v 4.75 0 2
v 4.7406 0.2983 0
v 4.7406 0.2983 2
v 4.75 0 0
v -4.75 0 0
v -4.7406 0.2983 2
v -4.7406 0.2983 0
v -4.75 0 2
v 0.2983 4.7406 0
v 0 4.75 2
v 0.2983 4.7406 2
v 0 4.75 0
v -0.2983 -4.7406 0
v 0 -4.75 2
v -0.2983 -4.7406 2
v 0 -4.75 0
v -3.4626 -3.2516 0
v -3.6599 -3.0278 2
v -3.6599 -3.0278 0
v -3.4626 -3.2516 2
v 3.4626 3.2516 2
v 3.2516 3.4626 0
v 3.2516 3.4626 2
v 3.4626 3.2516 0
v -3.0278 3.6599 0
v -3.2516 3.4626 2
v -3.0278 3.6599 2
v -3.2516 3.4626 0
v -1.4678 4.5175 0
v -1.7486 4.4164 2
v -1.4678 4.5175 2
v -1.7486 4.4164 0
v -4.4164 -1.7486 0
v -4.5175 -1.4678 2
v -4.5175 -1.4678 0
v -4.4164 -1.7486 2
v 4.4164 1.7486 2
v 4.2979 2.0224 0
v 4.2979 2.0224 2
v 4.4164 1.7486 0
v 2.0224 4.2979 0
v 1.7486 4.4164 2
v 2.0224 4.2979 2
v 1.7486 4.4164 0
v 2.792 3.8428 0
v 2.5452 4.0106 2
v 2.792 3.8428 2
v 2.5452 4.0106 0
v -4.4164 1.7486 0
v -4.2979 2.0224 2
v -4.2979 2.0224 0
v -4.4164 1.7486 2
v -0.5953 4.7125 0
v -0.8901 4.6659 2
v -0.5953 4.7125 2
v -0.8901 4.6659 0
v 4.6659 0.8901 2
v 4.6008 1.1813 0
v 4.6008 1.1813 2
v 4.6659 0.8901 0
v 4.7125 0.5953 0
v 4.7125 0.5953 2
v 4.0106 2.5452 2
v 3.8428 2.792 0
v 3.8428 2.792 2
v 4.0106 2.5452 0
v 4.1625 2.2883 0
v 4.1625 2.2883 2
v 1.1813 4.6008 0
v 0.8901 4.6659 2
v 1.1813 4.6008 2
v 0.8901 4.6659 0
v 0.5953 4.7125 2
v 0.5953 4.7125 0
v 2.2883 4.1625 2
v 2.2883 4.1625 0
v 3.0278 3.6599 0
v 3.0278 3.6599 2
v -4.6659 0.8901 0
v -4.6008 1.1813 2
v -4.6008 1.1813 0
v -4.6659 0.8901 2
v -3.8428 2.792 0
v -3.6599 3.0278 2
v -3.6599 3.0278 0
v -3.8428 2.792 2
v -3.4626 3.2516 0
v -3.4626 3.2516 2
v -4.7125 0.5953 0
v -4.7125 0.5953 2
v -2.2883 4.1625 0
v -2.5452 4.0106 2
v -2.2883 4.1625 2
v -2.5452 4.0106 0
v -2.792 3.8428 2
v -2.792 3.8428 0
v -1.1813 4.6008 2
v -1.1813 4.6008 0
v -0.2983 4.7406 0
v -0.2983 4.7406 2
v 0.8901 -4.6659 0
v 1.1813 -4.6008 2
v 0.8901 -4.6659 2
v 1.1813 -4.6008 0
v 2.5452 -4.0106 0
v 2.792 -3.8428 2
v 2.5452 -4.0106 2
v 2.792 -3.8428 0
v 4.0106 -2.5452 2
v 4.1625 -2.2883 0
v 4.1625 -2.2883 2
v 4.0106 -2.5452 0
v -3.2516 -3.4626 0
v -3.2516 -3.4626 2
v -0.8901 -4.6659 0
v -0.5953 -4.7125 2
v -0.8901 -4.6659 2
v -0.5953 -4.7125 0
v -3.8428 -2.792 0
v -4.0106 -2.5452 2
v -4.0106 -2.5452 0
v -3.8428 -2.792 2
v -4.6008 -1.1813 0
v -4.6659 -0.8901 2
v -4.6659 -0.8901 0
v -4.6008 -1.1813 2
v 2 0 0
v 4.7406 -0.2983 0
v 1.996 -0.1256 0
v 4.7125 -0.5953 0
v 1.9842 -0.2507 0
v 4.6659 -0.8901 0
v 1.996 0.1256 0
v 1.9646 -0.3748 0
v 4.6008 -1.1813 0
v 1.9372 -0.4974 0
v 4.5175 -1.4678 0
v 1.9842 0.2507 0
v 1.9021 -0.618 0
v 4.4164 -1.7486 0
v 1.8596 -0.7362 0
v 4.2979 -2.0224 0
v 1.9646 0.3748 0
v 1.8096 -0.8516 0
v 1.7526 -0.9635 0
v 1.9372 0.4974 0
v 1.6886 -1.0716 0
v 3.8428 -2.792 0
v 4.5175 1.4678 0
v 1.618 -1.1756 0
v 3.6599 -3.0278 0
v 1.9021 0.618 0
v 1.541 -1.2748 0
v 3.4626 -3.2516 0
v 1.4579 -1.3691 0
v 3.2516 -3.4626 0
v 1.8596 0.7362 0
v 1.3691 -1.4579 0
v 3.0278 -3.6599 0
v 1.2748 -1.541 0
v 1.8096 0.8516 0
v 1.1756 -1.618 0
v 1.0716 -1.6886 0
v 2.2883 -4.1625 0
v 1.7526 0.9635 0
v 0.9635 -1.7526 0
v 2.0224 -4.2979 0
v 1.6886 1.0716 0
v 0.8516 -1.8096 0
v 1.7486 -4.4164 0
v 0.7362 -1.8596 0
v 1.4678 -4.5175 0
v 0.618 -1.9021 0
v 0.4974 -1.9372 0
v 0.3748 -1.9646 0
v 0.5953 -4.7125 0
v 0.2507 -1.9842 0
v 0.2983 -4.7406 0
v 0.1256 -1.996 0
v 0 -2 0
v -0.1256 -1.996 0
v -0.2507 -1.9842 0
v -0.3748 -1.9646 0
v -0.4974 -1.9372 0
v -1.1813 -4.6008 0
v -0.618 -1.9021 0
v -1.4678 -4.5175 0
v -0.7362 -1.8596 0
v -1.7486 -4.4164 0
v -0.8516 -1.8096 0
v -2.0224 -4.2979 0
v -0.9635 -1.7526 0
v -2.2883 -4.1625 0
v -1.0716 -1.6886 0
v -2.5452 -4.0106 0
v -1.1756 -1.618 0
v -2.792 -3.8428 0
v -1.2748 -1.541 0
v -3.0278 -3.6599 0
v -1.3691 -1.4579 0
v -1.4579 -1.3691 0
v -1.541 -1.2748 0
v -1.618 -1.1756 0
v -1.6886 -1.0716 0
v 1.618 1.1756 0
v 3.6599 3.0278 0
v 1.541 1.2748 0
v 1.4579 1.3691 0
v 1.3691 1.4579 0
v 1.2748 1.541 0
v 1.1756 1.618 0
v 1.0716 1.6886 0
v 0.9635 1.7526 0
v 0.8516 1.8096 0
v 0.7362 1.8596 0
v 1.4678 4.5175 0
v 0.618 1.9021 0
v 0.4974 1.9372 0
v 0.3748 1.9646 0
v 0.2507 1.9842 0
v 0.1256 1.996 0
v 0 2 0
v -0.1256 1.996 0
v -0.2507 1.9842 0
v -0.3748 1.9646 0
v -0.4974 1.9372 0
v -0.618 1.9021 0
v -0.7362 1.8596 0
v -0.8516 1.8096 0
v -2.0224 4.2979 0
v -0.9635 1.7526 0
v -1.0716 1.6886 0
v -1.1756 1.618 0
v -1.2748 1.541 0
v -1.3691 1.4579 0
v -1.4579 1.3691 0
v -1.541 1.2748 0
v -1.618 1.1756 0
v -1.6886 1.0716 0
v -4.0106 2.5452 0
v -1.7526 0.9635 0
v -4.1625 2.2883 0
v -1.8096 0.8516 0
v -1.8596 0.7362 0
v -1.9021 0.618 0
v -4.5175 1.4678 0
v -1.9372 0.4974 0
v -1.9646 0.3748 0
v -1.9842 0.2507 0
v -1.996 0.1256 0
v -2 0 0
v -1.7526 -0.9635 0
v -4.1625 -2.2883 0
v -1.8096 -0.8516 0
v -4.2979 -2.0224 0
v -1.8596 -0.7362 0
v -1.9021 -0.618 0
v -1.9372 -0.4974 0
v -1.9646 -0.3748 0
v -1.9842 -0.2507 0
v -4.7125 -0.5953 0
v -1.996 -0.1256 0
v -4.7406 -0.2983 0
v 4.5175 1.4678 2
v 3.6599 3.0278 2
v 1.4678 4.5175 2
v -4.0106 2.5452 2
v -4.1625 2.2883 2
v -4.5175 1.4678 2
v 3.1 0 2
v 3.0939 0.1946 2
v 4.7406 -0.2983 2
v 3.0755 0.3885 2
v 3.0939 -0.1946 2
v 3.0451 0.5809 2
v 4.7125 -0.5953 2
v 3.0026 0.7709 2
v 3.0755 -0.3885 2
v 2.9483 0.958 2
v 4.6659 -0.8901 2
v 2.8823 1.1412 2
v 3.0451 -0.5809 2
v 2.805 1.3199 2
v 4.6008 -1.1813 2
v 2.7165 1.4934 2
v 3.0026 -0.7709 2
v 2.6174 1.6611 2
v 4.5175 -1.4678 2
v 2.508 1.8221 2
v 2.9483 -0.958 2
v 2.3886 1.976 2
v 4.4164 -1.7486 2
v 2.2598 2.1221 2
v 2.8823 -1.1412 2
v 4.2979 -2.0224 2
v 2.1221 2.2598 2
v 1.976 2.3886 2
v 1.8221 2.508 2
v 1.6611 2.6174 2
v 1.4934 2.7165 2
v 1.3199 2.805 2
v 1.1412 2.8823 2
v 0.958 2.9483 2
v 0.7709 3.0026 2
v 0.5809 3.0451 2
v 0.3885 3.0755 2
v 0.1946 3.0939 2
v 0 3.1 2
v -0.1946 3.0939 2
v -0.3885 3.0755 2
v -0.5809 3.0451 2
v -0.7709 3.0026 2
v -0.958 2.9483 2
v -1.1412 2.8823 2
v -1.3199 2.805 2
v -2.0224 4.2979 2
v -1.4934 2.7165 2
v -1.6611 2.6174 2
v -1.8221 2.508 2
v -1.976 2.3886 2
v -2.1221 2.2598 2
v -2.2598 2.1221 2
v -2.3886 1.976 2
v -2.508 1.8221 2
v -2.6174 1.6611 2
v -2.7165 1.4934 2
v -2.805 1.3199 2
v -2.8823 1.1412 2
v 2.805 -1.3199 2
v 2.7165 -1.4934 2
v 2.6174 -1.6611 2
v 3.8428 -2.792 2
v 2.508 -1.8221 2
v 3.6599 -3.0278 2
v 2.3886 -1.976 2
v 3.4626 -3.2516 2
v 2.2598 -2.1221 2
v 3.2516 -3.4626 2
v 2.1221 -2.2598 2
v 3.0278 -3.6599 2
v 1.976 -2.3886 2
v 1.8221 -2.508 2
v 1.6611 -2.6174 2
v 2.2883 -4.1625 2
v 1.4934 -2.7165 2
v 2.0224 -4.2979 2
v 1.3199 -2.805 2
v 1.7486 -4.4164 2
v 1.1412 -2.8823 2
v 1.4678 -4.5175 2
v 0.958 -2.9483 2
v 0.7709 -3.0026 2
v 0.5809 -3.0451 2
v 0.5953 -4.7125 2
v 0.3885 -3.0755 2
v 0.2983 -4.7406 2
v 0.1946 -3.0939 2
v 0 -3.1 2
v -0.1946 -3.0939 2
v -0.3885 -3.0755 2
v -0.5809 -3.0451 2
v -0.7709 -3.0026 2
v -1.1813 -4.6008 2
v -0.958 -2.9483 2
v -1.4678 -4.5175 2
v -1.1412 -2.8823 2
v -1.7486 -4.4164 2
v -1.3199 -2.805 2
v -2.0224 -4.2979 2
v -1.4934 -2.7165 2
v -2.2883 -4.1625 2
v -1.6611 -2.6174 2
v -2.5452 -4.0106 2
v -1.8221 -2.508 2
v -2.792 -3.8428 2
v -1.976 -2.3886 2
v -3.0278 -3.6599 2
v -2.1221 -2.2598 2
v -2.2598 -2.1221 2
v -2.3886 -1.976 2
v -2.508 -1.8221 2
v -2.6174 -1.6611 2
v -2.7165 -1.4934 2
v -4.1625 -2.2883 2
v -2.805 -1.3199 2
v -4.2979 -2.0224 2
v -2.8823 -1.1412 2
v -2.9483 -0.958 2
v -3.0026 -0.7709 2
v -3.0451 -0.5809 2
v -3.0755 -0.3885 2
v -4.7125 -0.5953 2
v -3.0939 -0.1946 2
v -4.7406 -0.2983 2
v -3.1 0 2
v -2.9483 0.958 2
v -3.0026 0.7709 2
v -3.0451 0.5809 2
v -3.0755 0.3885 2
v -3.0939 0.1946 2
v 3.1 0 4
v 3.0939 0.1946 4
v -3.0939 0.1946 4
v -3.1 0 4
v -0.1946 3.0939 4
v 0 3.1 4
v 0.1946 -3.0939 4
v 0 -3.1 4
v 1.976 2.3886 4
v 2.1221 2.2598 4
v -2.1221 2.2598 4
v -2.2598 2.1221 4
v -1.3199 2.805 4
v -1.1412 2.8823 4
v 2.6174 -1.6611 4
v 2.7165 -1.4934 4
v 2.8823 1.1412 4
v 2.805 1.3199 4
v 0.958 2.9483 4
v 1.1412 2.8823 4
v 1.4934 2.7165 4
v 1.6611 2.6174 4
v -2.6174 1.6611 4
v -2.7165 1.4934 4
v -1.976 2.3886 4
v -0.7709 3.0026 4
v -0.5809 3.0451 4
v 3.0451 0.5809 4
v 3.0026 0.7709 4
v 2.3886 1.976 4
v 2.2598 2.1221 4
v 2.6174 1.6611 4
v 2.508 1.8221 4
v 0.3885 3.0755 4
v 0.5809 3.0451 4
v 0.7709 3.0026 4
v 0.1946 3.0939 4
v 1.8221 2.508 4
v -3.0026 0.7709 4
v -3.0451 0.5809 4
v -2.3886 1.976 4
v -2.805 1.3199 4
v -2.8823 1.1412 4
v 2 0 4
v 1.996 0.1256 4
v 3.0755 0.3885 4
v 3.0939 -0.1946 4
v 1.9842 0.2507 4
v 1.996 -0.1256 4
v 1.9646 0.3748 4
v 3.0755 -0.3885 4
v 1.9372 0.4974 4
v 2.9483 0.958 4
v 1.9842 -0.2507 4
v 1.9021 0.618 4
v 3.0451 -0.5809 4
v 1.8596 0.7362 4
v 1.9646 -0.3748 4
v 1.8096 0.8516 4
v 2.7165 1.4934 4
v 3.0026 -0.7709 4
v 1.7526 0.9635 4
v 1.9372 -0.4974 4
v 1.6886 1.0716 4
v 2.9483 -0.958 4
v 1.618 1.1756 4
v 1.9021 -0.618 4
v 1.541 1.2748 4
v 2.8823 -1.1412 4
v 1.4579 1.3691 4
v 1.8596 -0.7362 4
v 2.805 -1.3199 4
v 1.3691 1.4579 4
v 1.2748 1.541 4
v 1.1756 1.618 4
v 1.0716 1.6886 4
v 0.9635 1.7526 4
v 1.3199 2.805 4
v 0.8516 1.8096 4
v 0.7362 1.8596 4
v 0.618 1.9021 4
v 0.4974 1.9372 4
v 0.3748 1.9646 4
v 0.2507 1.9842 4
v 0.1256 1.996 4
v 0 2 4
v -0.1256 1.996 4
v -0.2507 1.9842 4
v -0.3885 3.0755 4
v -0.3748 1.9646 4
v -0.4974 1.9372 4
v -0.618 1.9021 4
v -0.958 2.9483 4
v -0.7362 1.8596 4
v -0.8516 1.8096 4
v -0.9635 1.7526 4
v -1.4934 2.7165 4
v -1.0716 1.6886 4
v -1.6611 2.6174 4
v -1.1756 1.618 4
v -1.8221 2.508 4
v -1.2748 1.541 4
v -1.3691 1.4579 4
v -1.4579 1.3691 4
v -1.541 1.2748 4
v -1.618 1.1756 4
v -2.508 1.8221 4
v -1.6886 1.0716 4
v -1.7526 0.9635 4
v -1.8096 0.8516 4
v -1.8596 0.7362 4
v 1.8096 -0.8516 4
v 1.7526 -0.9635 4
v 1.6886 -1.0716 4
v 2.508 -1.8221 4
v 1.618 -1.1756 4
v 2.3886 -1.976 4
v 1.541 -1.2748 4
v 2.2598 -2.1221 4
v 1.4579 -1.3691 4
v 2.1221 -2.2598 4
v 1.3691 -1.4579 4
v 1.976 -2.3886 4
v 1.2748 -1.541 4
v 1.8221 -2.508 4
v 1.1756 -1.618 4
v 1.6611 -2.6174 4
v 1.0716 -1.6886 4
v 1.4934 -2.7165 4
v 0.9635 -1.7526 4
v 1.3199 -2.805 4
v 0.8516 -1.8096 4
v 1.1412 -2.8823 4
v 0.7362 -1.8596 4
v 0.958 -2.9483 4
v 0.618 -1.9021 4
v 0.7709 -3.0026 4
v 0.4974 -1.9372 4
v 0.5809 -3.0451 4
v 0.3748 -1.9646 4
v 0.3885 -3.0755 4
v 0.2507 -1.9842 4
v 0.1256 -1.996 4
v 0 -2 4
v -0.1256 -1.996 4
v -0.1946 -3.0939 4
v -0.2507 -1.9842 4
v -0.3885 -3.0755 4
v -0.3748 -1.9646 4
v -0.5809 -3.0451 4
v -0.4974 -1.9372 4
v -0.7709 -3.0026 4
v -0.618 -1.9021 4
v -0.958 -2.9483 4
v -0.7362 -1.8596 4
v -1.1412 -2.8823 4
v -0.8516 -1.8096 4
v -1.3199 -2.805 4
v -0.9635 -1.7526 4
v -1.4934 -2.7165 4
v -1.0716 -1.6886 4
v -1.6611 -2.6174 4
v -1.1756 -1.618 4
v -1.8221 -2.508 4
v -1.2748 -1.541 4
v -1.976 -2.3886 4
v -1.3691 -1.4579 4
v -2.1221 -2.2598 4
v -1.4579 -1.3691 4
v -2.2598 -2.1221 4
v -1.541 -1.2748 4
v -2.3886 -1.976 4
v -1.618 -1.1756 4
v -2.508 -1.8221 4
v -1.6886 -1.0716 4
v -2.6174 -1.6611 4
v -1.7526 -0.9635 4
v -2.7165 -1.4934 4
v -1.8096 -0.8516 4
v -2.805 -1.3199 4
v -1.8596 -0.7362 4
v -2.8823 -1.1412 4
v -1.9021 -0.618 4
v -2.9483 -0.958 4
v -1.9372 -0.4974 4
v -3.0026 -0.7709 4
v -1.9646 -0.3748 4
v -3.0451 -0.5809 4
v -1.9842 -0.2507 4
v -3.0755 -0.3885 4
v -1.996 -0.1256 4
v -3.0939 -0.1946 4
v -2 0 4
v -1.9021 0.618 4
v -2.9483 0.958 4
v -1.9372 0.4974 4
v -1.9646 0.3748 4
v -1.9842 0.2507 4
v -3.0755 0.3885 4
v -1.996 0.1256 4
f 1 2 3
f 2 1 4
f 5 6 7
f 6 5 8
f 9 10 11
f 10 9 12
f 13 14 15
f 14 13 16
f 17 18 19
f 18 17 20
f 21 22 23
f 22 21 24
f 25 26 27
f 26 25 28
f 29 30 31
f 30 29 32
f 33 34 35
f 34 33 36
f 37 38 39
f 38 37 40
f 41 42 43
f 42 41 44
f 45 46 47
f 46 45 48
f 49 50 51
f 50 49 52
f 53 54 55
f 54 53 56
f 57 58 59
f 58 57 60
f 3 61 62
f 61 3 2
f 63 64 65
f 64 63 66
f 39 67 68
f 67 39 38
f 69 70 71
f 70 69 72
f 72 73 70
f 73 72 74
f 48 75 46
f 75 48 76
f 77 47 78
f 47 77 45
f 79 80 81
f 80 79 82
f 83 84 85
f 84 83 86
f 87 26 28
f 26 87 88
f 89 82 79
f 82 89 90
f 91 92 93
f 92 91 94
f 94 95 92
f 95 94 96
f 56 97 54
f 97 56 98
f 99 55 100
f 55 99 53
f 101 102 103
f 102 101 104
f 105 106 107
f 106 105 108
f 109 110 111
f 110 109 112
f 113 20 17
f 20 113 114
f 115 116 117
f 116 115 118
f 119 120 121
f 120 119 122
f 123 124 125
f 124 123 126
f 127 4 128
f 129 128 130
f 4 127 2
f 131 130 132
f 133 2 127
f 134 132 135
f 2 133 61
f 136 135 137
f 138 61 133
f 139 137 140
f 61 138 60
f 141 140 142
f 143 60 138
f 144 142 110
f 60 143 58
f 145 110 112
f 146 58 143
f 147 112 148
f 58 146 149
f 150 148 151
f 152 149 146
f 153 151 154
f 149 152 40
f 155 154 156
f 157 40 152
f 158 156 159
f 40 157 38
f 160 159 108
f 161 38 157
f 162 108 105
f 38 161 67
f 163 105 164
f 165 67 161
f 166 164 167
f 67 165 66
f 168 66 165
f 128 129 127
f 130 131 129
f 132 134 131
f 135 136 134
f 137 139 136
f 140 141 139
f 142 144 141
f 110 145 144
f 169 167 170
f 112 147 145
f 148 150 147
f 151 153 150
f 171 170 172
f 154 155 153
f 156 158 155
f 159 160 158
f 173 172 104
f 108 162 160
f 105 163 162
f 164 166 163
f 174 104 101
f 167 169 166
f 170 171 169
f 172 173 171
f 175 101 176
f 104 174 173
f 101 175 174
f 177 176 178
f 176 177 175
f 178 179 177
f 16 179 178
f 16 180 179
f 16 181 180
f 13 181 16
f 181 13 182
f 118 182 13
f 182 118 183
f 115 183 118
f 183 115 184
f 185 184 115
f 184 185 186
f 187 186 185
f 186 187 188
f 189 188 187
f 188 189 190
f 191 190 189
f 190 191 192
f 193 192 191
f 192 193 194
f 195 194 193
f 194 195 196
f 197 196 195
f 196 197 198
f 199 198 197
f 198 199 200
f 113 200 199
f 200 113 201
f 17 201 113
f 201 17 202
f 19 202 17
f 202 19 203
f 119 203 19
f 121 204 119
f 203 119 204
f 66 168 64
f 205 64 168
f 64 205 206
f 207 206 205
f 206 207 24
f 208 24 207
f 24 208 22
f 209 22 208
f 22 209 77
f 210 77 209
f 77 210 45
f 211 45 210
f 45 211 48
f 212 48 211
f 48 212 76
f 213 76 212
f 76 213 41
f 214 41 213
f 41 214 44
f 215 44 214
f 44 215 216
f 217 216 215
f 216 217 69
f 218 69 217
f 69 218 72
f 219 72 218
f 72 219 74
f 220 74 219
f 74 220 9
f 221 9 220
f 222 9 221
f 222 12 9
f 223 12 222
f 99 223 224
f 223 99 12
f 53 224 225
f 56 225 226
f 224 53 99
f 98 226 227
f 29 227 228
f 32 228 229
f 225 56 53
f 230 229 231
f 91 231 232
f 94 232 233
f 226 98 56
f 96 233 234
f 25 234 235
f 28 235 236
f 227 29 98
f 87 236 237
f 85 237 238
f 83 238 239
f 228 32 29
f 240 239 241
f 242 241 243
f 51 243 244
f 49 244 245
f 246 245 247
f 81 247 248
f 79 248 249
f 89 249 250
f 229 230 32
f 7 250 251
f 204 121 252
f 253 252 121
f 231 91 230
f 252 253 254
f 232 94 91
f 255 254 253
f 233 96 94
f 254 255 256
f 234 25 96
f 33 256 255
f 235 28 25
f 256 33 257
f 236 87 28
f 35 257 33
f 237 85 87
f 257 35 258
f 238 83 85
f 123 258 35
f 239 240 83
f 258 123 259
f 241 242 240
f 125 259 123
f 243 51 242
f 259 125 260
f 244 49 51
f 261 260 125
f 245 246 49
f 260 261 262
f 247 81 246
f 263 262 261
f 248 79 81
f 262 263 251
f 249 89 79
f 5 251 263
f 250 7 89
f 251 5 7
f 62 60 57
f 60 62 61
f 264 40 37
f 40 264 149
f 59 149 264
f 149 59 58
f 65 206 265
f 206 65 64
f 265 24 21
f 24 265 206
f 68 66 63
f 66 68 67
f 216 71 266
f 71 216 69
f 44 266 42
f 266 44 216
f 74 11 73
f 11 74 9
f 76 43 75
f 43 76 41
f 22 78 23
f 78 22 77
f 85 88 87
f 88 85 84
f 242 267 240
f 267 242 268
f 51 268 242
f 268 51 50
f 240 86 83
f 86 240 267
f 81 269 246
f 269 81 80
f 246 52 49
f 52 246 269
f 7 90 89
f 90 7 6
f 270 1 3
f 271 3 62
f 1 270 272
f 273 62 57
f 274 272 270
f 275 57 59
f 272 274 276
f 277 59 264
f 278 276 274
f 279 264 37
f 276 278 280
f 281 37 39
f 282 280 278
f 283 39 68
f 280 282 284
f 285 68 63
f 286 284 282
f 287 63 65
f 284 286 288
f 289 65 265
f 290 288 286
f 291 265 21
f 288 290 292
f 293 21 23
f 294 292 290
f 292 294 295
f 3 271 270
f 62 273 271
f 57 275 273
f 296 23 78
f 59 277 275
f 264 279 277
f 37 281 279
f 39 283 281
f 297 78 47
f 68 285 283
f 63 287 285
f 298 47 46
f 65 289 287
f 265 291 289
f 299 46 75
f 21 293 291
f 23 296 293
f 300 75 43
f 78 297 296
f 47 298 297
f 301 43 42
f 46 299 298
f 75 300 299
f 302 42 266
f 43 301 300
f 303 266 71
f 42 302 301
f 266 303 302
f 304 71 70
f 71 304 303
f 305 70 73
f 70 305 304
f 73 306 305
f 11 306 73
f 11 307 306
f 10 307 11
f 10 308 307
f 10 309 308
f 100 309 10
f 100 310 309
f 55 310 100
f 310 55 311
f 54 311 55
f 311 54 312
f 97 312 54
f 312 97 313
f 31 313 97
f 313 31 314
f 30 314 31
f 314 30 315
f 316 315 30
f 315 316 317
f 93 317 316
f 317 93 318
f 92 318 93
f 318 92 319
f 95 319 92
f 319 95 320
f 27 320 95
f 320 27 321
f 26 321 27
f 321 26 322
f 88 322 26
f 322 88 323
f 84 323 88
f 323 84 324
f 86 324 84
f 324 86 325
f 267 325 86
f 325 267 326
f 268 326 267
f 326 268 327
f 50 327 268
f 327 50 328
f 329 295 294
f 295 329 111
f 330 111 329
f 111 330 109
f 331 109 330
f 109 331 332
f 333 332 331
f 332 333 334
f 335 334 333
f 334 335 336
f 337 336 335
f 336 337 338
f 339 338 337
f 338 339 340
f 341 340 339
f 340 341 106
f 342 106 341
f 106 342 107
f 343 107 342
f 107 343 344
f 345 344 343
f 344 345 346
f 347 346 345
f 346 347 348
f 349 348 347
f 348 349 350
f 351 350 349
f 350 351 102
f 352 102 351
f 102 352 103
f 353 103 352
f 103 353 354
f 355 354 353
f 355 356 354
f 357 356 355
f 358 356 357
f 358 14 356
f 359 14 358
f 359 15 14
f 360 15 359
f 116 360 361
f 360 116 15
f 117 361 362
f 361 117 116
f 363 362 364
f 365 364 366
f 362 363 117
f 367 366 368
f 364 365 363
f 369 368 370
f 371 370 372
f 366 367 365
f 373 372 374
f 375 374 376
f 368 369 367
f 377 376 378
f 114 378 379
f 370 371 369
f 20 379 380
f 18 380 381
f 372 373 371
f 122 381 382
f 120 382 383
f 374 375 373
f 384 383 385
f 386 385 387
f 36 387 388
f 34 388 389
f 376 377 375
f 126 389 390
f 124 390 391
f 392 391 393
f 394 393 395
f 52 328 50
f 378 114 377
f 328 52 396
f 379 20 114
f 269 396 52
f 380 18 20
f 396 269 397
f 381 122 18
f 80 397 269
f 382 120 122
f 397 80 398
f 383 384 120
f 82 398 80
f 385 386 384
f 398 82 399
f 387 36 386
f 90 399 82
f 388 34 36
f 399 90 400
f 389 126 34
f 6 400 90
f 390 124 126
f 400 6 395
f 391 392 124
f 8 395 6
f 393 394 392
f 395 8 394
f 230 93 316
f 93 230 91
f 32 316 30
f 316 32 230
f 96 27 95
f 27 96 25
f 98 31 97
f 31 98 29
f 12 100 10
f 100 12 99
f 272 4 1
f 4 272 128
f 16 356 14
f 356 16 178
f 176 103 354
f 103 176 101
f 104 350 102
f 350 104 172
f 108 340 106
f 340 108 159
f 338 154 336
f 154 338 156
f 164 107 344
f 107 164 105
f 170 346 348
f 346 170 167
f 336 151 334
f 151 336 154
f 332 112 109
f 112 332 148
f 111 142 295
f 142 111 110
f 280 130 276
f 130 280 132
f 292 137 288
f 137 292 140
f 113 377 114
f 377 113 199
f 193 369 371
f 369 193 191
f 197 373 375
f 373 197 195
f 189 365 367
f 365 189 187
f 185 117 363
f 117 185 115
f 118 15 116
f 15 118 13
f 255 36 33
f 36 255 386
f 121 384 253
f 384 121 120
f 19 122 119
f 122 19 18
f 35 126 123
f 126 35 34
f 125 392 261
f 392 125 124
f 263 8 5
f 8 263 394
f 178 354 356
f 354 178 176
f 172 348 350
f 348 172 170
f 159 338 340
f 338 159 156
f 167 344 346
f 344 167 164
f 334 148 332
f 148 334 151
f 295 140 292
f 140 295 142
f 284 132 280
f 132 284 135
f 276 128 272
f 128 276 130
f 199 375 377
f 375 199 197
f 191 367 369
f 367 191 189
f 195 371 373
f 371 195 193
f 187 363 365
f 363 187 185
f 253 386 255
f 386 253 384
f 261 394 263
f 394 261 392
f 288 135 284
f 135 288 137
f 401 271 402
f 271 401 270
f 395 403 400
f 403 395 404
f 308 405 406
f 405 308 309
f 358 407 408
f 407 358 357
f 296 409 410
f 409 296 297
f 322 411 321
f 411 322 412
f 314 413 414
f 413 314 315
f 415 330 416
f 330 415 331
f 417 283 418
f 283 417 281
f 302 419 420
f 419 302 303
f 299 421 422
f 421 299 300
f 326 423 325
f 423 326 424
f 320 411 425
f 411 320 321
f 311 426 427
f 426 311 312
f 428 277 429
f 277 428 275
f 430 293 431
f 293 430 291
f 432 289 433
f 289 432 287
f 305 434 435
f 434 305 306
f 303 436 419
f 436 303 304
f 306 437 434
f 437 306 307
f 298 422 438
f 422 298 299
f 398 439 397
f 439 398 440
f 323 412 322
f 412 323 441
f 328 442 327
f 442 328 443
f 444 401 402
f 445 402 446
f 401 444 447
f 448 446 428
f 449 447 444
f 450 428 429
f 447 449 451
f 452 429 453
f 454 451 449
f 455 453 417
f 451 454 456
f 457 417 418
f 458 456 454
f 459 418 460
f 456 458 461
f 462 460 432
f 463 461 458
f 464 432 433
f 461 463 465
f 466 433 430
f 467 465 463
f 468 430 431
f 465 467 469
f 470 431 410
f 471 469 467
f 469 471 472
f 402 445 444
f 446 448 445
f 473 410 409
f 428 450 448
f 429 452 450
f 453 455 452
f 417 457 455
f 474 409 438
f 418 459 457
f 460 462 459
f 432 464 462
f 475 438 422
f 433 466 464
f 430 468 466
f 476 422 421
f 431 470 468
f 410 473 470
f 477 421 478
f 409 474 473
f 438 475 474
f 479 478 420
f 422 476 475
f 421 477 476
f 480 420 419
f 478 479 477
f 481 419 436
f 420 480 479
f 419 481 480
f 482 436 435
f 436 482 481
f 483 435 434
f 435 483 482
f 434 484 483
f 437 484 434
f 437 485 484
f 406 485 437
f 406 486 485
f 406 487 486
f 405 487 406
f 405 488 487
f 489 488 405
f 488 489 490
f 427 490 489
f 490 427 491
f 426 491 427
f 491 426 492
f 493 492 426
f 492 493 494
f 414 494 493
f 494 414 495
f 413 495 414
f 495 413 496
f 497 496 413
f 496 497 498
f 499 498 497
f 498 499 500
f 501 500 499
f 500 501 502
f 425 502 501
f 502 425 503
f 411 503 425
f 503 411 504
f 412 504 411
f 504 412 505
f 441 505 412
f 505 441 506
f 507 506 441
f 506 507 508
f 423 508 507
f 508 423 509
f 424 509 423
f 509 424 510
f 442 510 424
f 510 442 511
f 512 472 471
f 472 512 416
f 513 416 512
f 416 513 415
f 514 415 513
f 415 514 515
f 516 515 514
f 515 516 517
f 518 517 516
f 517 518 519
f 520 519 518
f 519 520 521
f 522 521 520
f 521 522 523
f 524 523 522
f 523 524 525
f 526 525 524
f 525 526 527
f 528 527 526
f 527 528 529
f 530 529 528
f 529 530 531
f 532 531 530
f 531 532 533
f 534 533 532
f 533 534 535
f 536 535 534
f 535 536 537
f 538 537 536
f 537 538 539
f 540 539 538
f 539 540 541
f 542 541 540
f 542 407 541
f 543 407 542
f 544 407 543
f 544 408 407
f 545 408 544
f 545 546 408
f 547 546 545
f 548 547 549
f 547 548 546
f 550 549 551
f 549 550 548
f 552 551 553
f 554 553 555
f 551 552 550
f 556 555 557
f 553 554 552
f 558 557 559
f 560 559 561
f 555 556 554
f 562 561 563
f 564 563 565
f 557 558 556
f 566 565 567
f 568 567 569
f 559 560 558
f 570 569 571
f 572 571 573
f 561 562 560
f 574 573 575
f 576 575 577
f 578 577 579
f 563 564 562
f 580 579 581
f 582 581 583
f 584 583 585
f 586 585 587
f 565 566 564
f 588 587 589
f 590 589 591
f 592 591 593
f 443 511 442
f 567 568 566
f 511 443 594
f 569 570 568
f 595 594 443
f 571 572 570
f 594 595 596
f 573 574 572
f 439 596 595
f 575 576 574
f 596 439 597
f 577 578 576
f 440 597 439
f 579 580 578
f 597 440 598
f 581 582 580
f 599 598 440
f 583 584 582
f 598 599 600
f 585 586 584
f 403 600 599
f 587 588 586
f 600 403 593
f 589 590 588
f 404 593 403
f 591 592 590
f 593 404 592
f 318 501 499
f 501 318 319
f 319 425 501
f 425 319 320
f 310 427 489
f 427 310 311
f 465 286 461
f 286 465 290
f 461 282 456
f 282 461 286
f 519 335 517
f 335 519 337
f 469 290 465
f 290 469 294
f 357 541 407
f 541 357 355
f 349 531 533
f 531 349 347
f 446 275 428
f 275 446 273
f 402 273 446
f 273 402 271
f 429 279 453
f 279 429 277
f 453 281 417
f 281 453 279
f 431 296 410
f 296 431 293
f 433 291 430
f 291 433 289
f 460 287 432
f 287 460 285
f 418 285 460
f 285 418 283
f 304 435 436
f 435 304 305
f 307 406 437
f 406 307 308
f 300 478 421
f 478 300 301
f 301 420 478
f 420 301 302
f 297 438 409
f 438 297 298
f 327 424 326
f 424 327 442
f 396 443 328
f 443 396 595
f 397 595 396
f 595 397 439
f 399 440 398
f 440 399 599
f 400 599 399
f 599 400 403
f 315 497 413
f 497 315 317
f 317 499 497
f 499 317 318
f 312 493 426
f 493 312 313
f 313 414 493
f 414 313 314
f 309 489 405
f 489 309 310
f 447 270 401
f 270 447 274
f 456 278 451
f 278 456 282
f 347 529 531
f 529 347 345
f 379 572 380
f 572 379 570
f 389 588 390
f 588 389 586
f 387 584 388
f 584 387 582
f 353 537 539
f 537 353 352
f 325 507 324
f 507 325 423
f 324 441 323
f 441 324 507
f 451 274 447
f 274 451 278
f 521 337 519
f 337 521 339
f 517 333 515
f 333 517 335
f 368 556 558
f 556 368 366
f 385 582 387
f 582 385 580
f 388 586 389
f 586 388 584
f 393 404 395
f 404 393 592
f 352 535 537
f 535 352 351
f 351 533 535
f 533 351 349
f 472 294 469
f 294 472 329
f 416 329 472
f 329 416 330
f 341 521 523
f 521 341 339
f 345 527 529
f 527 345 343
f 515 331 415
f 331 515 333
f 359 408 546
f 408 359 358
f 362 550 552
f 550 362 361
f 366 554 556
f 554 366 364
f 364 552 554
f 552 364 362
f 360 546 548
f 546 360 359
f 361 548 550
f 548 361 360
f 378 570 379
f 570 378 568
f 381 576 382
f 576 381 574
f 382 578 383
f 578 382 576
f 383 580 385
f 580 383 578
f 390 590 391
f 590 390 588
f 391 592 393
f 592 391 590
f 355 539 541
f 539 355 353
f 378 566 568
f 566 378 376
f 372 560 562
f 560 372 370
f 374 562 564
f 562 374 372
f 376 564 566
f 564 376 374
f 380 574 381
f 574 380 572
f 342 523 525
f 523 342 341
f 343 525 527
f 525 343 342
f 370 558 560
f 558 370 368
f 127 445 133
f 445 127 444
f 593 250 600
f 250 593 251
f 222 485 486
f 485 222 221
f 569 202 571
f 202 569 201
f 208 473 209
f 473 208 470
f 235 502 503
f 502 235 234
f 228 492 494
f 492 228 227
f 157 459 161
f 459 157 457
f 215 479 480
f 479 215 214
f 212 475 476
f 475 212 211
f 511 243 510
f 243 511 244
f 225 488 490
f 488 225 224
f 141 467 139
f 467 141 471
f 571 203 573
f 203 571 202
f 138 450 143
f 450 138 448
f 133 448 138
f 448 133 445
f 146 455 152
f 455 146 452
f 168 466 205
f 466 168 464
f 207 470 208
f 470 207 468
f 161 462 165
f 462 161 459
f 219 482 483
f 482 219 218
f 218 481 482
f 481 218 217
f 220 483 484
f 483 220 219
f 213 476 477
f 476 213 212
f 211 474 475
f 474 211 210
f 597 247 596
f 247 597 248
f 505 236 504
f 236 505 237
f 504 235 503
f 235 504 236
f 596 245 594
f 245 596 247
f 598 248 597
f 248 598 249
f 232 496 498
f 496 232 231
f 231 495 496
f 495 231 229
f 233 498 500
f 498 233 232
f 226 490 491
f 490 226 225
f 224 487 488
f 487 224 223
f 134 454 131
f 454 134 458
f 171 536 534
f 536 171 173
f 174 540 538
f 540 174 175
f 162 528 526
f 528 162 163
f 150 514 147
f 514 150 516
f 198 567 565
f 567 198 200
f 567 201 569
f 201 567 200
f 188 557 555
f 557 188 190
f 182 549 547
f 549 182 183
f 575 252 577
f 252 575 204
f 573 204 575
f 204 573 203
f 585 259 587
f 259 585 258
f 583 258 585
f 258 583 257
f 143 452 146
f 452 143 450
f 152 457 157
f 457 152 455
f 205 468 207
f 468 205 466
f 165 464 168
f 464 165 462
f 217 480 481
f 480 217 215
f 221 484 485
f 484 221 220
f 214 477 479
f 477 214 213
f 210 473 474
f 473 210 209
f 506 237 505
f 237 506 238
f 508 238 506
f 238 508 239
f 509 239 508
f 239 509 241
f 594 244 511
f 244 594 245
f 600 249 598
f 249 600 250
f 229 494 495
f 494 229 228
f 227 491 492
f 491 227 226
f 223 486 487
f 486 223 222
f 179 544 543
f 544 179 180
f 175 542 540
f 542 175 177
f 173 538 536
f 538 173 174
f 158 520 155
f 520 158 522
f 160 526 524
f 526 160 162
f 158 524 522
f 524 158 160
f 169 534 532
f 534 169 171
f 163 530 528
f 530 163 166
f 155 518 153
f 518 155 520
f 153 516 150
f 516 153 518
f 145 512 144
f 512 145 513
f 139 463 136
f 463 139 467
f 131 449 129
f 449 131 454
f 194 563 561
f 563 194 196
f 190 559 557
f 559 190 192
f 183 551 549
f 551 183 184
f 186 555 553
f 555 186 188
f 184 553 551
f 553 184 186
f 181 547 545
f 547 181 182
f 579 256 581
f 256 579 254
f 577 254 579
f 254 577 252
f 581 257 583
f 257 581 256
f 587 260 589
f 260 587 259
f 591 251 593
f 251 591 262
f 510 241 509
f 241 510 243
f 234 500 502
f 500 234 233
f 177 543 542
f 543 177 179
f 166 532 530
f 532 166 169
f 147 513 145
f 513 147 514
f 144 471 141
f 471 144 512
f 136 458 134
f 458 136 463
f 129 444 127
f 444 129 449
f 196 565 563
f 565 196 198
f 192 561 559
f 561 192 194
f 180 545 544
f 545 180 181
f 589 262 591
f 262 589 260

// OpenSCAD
resolution = 100;
module but () {cylinder (r=9.5/2,h=2, $fn=resolution);

/*translate([0,0,6]) cylinder (r=9.5/2,h=2, $fn=resolution);*/

cylinder (r=6.2/2,h=8/2, $fn=resolution);
}


difference () {
but();
cylinder (r=4/2,h=8, $fn=resolution);
translate ([0,0,6]) cylinder (r1=4/2, r2=8/2, h=2, $fn=resolution);
}
